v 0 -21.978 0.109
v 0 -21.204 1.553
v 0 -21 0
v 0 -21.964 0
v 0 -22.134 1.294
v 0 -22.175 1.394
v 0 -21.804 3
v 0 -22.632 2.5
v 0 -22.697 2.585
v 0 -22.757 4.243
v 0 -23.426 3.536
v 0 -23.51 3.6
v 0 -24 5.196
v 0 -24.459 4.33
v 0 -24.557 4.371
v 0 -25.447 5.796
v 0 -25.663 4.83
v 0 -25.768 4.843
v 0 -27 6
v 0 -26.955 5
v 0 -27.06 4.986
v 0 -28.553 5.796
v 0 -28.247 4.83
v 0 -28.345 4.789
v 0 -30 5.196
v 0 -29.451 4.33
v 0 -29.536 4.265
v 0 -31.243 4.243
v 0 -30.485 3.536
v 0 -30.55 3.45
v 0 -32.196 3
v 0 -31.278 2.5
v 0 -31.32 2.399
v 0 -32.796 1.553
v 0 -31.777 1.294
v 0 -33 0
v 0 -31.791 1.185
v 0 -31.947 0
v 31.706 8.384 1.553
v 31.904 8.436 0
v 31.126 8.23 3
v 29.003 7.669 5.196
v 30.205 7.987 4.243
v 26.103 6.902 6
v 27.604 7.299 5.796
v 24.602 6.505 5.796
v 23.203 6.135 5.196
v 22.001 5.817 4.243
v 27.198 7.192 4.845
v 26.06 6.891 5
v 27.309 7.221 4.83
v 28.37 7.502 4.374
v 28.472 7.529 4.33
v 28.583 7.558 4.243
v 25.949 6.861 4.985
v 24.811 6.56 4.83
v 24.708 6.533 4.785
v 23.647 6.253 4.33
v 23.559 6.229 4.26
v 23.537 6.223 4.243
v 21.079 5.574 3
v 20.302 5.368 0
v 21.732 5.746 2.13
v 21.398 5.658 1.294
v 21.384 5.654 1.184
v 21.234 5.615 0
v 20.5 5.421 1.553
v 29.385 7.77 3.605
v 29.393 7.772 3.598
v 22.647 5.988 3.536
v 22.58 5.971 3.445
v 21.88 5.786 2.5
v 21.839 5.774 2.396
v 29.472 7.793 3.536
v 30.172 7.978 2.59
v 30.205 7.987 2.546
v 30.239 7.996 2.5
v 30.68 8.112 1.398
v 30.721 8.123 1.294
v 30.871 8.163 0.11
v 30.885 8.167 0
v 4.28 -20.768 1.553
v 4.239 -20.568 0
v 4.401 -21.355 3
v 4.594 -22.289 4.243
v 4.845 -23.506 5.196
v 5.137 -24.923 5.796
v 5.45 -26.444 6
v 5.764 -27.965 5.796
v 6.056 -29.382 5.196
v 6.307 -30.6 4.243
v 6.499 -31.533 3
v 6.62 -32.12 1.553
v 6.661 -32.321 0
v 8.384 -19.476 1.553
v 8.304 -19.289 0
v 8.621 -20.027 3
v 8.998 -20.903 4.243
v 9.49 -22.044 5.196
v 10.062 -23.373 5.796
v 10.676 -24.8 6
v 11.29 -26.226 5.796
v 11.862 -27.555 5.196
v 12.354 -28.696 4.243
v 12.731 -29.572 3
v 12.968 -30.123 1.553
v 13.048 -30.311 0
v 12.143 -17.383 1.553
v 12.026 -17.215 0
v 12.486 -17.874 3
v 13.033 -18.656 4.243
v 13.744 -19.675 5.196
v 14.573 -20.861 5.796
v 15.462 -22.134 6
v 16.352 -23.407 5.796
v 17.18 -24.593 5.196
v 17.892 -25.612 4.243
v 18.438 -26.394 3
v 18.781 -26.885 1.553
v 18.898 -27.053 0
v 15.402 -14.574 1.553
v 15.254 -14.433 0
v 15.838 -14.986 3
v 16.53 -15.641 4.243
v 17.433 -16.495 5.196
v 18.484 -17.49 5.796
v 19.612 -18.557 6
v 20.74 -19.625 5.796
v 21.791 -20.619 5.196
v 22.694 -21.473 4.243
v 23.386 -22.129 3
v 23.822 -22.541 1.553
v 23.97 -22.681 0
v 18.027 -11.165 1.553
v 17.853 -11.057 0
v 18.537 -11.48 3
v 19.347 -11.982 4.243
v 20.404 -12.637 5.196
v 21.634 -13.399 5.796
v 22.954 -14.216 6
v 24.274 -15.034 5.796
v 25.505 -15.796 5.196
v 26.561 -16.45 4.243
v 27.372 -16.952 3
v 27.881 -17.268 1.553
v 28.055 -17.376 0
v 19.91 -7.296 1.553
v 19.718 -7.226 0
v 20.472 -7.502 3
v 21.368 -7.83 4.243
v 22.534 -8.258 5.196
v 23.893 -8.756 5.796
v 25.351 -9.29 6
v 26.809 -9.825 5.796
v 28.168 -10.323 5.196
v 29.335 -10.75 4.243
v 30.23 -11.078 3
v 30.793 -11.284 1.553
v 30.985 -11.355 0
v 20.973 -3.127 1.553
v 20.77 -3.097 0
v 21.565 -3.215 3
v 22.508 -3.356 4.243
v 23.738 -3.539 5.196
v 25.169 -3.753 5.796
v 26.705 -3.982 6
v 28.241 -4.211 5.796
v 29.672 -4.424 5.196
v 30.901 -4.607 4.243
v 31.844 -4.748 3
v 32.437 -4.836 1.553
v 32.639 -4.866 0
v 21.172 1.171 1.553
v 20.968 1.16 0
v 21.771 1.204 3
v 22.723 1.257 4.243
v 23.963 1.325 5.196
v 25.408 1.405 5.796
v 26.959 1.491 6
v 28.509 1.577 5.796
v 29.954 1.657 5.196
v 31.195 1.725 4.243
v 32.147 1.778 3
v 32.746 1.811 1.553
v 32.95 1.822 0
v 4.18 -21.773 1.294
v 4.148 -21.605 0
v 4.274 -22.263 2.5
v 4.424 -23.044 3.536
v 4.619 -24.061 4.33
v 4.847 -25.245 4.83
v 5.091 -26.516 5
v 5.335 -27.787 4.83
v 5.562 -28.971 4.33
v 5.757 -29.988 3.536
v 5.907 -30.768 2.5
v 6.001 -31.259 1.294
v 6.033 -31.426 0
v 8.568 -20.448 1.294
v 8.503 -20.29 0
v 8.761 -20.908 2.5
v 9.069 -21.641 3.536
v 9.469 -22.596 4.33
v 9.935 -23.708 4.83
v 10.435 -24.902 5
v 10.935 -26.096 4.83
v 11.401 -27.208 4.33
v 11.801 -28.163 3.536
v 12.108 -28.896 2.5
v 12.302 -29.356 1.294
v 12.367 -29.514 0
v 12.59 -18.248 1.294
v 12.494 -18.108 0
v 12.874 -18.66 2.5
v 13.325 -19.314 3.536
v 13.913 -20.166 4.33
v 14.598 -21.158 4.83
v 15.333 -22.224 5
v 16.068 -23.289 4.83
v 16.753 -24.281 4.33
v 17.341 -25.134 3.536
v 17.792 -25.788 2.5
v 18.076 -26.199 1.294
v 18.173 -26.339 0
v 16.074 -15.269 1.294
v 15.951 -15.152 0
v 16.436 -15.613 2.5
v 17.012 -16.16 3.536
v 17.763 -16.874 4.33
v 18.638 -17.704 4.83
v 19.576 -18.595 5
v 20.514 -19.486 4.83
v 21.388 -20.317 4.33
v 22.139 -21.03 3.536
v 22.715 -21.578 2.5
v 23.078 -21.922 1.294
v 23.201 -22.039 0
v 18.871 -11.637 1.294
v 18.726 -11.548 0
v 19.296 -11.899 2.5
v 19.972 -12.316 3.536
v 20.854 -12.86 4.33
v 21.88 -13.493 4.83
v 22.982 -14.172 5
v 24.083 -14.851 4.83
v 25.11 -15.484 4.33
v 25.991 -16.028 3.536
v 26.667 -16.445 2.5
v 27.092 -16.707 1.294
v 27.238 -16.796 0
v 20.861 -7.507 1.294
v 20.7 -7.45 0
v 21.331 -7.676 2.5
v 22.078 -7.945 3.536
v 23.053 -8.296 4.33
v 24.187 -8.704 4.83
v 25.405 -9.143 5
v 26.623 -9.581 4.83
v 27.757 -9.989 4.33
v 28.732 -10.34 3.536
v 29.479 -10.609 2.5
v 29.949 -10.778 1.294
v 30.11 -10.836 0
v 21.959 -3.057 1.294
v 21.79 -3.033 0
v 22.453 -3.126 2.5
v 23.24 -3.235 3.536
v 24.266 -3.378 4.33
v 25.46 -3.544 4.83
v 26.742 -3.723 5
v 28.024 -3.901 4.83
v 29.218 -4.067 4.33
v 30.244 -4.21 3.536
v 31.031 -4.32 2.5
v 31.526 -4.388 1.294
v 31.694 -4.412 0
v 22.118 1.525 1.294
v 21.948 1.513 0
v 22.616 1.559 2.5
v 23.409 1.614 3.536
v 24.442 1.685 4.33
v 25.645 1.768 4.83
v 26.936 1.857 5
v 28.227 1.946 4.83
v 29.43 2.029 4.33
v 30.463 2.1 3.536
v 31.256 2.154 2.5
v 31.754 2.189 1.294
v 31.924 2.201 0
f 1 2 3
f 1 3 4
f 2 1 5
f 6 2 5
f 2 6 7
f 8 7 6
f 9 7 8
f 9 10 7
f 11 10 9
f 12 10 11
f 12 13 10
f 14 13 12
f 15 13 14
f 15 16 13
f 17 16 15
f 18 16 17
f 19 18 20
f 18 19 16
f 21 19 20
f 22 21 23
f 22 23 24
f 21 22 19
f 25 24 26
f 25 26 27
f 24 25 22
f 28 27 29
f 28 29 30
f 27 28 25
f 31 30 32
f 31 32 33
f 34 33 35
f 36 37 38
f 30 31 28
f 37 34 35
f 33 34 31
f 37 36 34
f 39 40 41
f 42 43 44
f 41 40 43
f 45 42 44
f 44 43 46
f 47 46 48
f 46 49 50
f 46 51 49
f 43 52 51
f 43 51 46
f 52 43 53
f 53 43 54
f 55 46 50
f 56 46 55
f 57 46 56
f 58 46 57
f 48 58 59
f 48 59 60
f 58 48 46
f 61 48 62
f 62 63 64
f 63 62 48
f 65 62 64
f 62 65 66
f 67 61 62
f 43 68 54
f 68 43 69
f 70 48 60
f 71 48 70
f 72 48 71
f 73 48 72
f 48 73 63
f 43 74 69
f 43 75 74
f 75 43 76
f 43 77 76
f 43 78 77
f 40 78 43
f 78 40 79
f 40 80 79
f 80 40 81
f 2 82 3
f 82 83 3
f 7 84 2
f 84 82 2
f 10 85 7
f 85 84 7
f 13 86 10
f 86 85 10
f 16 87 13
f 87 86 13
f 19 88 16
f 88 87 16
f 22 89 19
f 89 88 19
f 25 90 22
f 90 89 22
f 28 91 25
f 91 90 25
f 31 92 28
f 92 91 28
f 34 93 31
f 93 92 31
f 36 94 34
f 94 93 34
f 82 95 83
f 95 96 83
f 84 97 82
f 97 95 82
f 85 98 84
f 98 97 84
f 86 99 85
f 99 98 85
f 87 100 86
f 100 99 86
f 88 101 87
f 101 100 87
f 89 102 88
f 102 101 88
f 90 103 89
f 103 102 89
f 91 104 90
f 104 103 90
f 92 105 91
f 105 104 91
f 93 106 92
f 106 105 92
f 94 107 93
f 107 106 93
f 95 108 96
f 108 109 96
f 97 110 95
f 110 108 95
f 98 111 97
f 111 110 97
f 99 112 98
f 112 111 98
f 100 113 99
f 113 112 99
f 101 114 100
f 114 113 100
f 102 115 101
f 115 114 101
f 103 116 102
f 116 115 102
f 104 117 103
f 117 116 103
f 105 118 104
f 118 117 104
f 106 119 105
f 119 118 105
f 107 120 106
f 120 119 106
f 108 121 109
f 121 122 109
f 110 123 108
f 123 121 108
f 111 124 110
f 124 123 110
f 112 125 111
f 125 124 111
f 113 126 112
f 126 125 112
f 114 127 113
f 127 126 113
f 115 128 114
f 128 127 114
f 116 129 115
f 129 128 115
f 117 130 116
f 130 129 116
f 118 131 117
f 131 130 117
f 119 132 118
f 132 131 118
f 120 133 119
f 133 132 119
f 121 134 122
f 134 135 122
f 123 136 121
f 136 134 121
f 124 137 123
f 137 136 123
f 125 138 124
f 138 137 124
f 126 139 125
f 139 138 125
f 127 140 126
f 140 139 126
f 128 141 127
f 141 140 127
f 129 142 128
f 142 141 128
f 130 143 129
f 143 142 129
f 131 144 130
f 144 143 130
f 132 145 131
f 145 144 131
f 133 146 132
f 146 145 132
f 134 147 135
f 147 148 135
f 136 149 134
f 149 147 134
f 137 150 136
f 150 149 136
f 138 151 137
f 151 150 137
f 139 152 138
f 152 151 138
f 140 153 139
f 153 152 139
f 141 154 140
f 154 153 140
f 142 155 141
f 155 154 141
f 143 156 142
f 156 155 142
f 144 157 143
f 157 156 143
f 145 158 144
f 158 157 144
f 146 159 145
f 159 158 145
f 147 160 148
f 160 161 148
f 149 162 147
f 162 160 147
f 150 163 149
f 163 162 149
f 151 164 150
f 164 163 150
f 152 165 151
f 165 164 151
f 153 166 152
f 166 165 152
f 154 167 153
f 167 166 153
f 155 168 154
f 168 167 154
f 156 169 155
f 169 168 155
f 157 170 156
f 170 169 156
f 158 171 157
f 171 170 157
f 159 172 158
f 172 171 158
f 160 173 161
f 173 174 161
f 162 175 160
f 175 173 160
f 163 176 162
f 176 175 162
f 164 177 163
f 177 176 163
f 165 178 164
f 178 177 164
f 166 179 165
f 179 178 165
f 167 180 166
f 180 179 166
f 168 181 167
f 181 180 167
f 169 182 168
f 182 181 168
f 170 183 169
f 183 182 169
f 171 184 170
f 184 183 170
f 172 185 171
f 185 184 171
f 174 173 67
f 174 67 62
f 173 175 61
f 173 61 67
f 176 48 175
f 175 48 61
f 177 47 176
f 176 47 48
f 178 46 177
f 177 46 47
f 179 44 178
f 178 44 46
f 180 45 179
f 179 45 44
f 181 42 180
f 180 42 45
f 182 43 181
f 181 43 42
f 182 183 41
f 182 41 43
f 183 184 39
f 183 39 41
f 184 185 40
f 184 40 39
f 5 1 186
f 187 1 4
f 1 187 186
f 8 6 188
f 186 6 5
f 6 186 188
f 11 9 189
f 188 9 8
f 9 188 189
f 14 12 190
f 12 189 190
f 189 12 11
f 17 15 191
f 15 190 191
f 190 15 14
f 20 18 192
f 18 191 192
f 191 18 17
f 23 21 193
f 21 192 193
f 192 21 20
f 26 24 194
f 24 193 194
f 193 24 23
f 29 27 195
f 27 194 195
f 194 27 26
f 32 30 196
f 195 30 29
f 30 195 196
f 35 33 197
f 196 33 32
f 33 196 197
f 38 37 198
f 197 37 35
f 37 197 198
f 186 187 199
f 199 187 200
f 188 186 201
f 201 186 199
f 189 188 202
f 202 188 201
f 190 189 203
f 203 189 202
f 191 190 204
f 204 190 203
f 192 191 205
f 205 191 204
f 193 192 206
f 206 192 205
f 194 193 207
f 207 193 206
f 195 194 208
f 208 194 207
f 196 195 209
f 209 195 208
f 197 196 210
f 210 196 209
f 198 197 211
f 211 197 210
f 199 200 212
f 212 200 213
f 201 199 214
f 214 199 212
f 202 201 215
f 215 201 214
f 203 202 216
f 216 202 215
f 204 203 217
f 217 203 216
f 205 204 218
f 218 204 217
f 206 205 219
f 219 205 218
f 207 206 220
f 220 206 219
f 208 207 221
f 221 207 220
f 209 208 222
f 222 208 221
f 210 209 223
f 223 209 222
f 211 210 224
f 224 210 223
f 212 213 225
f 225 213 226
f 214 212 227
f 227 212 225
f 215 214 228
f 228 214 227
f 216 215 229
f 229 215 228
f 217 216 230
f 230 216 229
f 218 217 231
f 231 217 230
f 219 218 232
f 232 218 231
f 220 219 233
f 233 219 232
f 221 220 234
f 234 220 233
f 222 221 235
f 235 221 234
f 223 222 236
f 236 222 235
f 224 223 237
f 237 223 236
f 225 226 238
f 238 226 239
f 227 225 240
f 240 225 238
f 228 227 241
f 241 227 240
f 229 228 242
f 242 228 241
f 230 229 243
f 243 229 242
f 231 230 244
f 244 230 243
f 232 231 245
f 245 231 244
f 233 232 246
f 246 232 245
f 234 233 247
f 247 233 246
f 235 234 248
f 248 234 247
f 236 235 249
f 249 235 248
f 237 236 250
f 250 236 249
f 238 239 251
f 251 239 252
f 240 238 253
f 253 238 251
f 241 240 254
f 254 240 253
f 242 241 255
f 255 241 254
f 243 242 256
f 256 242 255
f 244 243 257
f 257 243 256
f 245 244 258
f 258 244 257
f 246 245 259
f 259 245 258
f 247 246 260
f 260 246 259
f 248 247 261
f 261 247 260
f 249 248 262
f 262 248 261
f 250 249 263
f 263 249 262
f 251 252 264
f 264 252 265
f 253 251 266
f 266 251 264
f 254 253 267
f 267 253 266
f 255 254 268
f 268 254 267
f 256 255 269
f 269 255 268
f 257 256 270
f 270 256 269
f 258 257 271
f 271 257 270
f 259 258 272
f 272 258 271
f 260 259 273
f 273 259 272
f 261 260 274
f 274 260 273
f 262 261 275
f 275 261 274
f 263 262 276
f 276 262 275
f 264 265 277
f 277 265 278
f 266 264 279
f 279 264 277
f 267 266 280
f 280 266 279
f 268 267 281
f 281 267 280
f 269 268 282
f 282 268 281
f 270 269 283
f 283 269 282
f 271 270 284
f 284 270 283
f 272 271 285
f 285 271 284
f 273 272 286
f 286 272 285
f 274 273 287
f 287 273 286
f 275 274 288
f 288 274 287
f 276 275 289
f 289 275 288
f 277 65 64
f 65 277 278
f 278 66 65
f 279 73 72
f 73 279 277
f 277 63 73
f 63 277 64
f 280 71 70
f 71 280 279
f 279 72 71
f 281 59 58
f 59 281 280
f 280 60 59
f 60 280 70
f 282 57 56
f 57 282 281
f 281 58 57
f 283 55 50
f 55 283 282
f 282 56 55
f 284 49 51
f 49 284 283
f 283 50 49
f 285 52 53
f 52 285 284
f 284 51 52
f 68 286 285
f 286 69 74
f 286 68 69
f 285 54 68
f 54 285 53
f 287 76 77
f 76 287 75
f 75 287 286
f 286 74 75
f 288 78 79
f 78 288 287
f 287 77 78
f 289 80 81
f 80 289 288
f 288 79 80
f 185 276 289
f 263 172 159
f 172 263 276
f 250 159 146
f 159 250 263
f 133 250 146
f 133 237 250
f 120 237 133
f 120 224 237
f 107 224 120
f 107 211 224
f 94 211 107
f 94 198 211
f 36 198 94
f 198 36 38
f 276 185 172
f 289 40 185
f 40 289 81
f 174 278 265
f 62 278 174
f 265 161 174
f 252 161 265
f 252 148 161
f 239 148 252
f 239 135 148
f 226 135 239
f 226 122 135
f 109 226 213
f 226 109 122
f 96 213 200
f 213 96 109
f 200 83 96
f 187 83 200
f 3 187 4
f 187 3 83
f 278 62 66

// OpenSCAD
// file: ../build_environments.scad
// build_environments.scad: modules to build level sections
//

module pool(diameter=10.0, wall_height=2.0, step_width=3.0, connections=[])
{
    difference() {
        union() {
        difference() {
            cylinder(h=0.5,r1=diameter+step_width,r2=diameter+step_width,$fn=48);
            translate([0,0,-0.1])
                cylinder(h=0.7,r1=diameter,r2=diameter,$fn=48);
        }
        difference() {
            cylinder(h=wall_height,r1=diameter+step_width+1.0,r2=diameter+step_width+1.0,$fn=48);
            translate([0,0,-0.1])
                cylinder(h=wall_height+0.2,r1=diameter+step_width,r2=diameter+step_width,$fn=48);
        }
        }
    
        for (c = connections)
        {
            rotate([0,90,0]) {
                angle = atan2(c[1],c[0]);
                rotate([-angle,0,0]) {
                    cylinder(h=diameter+5.0,r1=c[2],r2=c[2],$fn=48);
                }
            }
        }
    }
}

module straight(length=10.0, width=2.0, dy1=0.0, dy2=0.0, dz=0.0)
{
    dims = [0, 0, 0, 0, 0, (dz/length)];
    matrix = [
        [ 1, dims[0], dims[1], 0 ],
        [ dims[2], 1, dims[4], 0 ],
        [ dims[5], dims[3], 1, 0 ],
        [ 0, 0, 0, 1 ]
    ];
    multmatrix(matrix)
    difference() {
        translate([dy1,0,0])
        union() {
            rotate([0,90,0]) {
                difference() {
                    cylinder(h=(length-dy1-dy2),r1=width+1.0,r2=width+1.0,$fn=24);
                    translate([0,0,-0.1])
                        cylinder(h=(length-dy1-dy2+0.2),r1=width,r2=width,$fn=24);
                }
                difference() {
                    cylinder(h=1.0,r1=width+2.0,r2=width+2.0,$fn=24);
                    translate([0,0,-0.1])
                        cylinder(h=1.2,r1=width,r2=width,$fn=24);
                }
                translate([0,0,(length-dy1-dy2)-1.0]) {
                    difference() {
                        cylinder(h=1.0,r1=width+2.0,r2=width+2.0,$fn=24);
                        translate([0,0,-0.1])
                            cylinder(h=1.2,r1=width,r2=width,$fn=24);
                    }
                }
            }
        }
        translate([0,0,-(2*width+4.0)/2])
            cube([3*length,3*length,2*width+4.0],center=true);
    }
}

module curve(p0=[0,0], center=[0,0], dir=1, angle=0.0, width=2.0)
{
    radius = sqrt((p0[0]-center[0])*(p0[0]-center[0]) + (p0[1]-center[1])*(p0[1]-center[1]));
    if (dir == 0) {
        difference() {
            rotate([0,0,-90])
            difference() {
                rotate_extrude(angle = angle, convexity = 10, $fn=32)
                    translate([radius, 0, 0])
                        circle(r = width+1.0,$fn=24);
                rotate([0,0,-1.0])
                    rotate_extrude(angle = angle+2.0, convexity = 10, $fn=32)
                        translate([radius, 0, 0])
                            circle(r = width,$fn=24);
            }
            translate([0,0,-(2*width+4.0)/2])
                cube([5*radius,5*radius,2*width+4.0],center=true);
        }
    }
    else {
        difference() {
            rotate([0,0,90])
            difference() {
                rotate_extrude(angle = -angle, convexity = 10, $fn=32)
                    translate([radius, 0, 0])
                        circle(r = width+1.0,$fn=24);
                rotate([0,0,1.0])
                    rotate_extrude(angle = -angle-2.0, convexity = 10, $fn=32)
                        translate([radius, 0, 0])
                            circle(r = width,$fn=24);
            }
            translate([0,0,-(2*width+4.0)/2])
                cube([5*radius,5*radius,2*width+4.0],center=true);
        }
    }

}

// test pool
//pool(diameter=12.0000, wall_height=3.0000, step_width=3.0000, connections=[[0.0000,-26.0000,2.0000], [23.6074,0.0000,2.0000]]);

// test straight, slope
//straight(length=26.0000, width=2.0000, dy1=11.8322, dy2=6.7082, dz=0.0000);
//straight(length=29.1549, width=12.0000, dy1=0.0000, dy2=0.0000, dz=-15.0000);

// test curve
//curve(p0=[23.6074, 0.0000], center=[23.6074, 5.0000], dir=0, angle=60.1011, width=2.0000);
//curve(p0=[33.6426, 12.4219], center=[37.9771, 9.9295], dir=1, angle=120.4627, width=2.0000);
// main file
use <../build_environments.scad>;
curve(p0=[179.5328, -142.2751], center=[153.2389, -136.1408], dir=0, angle=104.8110, width=5.0000);
